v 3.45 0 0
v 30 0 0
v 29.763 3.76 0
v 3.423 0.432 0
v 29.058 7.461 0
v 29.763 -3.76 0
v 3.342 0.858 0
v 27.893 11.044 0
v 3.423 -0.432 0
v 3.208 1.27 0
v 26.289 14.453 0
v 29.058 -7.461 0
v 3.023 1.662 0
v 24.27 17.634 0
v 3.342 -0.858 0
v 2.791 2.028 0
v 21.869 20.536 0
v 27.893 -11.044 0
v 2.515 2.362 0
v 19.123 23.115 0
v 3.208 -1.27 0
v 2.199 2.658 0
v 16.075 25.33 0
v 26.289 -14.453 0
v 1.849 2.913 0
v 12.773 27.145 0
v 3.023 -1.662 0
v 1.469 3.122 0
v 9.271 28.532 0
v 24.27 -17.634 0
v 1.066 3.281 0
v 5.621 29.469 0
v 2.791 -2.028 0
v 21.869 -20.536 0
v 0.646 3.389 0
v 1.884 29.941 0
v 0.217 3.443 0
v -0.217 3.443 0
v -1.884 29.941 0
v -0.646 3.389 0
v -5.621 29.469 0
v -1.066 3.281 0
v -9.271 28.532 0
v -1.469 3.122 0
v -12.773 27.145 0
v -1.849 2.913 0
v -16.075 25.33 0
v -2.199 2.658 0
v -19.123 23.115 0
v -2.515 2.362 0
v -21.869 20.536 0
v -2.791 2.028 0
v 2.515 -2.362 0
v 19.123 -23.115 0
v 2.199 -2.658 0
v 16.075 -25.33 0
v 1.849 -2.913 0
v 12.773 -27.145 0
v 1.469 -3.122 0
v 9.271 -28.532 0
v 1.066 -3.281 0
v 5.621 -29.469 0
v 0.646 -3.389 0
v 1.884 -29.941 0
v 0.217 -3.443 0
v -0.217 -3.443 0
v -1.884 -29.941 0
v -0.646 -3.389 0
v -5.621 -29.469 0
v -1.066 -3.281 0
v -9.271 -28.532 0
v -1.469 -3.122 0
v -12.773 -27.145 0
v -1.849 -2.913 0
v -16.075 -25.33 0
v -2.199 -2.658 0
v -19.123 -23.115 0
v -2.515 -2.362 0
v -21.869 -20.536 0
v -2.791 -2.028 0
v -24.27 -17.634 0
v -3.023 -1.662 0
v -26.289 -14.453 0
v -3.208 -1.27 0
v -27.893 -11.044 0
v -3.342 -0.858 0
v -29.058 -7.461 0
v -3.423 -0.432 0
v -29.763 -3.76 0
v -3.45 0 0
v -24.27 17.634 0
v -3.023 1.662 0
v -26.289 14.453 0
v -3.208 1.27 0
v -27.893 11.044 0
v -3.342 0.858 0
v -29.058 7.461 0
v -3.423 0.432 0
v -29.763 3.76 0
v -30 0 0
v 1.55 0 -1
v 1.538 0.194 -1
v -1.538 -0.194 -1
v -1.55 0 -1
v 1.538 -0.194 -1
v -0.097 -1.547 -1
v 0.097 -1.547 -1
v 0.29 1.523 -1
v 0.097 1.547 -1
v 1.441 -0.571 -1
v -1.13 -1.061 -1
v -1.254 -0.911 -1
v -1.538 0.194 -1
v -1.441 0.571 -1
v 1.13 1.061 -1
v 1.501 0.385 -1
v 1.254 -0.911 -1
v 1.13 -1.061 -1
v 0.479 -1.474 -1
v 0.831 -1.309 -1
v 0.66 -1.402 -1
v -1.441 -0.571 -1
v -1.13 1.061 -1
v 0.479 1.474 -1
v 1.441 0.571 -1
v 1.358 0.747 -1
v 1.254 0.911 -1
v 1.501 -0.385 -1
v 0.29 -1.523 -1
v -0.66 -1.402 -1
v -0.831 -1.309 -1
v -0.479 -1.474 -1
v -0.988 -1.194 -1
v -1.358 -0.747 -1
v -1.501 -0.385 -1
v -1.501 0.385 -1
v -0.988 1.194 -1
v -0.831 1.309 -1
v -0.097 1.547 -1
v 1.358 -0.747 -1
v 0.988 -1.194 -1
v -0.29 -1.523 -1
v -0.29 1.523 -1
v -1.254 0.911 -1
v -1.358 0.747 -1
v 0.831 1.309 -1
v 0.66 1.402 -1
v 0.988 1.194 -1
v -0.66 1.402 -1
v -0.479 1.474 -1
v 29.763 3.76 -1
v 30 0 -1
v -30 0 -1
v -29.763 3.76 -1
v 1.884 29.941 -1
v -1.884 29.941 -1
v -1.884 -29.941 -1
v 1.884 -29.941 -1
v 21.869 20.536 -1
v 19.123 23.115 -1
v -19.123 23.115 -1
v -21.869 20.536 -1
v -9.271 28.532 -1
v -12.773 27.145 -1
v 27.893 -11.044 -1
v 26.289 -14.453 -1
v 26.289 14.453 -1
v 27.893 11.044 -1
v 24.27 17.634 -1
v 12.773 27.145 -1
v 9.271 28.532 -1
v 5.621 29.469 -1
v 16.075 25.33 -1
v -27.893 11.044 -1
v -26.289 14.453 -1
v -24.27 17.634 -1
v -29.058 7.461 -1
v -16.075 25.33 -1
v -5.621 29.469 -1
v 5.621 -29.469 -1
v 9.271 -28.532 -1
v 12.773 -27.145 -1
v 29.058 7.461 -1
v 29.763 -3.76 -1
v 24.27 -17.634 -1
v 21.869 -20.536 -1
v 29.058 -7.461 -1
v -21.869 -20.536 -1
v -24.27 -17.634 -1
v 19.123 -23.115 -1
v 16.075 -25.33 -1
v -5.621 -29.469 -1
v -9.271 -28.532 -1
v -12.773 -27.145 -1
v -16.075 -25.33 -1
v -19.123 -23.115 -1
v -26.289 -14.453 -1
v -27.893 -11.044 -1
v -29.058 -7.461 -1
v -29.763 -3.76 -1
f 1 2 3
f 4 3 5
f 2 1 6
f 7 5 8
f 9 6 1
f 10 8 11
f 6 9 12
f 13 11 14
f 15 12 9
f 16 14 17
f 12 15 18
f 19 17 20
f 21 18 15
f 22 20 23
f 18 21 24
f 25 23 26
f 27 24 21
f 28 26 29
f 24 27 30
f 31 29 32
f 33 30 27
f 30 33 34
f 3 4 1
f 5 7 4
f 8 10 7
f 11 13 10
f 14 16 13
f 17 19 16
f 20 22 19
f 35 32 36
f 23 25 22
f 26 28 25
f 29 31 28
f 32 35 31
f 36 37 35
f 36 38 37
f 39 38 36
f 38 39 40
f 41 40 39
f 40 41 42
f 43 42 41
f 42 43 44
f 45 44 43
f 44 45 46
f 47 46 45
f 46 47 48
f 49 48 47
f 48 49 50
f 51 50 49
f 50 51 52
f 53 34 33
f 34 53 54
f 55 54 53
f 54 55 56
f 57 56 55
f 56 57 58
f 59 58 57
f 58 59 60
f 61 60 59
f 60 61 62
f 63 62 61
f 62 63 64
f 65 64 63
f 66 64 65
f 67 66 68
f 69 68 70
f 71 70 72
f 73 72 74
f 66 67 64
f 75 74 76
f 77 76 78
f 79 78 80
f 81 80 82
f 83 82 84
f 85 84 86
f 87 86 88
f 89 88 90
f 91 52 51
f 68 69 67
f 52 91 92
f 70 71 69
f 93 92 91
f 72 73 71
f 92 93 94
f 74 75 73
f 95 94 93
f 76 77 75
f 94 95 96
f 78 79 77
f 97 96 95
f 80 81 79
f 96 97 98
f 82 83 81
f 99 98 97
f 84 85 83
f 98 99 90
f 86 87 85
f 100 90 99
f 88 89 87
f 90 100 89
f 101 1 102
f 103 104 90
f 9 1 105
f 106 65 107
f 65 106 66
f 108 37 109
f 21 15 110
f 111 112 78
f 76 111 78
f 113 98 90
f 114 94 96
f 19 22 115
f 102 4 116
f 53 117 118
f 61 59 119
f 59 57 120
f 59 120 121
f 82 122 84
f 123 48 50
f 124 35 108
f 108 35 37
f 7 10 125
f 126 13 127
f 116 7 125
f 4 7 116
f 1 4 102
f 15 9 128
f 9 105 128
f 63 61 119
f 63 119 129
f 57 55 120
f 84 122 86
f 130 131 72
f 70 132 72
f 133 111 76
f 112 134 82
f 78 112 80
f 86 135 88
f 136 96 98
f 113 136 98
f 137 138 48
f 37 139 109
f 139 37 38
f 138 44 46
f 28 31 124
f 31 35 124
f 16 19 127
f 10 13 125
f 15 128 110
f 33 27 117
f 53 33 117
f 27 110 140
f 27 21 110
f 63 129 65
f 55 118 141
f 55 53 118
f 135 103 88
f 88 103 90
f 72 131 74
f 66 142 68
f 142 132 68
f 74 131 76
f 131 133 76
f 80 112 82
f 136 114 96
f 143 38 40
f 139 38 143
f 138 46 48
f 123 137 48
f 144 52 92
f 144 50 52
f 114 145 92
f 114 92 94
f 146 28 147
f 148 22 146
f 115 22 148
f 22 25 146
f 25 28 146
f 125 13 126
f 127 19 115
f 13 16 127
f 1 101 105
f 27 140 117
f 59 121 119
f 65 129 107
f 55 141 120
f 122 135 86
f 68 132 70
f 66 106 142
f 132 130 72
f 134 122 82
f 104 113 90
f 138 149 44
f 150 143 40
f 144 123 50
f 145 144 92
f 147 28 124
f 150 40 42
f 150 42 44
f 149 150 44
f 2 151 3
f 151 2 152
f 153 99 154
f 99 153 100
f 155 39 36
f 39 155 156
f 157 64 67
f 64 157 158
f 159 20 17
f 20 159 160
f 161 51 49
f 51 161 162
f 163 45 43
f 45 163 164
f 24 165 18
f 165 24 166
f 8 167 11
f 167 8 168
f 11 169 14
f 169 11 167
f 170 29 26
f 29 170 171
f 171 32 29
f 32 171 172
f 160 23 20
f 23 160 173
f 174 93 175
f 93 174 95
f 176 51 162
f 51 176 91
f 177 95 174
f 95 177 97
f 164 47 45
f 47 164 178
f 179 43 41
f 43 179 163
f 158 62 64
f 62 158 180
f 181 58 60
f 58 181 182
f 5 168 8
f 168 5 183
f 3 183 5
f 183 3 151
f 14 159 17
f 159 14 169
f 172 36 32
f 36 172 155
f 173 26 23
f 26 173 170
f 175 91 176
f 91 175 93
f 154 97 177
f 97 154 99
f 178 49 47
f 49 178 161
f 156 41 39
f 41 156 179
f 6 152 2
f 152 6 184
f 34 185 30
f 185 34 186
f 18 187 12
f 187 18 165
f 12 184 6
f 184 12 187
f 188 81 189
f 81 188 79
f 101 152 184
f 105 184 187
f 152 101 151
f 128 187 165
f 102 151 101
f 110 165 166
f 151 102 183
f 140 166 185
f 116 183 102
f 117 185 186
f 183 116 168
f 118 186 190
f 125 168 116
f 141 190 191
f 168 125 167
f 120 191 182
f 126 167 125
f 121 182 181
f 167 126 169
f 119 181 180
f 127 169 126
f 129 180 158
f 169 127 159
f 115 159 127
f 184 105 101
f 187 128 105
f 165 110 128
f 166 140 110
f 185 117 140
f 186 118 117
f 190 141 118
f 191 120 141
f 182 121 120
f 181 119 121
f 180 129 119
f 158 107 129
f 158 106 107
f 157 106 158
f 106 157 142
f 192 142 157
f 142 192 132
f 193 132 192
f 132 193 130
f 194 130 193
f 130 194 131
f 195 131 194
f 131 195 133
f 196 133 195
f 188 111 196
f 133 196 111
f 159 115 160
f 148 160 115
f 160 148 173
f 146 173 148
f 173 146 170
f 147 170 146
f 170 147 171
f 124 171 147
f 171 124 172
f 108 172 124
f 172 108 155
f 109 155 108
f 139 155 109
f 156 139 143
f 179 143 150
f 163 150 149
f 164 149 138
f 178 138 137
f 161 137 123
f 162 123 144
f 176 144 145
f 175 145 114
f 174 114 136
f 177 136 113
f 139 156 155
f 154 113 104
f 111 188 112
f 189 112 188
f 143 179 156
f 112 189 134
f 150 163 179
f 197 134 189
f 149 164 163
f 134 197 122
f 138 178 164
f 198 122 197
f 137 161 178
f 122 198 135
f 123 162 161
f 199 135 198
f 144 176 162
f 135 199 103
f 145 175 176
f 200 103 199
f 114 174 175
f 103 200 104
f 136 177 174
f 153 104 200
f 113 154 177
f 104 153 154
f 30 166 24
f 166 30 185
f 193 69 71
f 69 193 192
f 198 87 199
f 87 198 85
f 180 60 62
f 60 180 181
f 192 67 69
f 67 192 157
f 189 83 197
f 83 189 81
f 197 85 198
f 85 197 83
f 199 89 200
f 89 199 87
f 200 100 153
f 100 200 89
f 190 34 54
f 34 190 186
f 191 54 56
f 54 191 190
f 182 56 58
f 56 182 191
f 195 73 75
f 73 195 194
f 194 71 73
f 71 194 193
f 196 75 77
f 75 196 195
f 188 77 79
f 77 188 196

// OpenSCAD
$fn = 50;

difference() {
	union() {
		translate(v = [0, 0, -1.0]) {
			cylinder(h = 1.0, r = 30.0);
		}
	}
	union() {
		translate(v = [0, 0, 0]) {
			rotate(a = [0, 0, 0]) {
				difference() {
					union() {
						translate(v = [0, 0, -4.0]) {
							cylinder(h = 4.0, r = 1.25);
						}
						translate(v = [0, 0, -1.0]) {
							cylinder(h = 1.0, r1 = 1.55, r2 = 3.45);
						}
						translate(v = [0, 0, -4.0]) {
							cylinder(h = 4.0, r = 1.55);
						}
						translate(v = [0, 0, -4.0]) {
							cylinder(h = 4.0, r = 1.25);
						}
					}
					union();
				}
			}
		}
	}
}
